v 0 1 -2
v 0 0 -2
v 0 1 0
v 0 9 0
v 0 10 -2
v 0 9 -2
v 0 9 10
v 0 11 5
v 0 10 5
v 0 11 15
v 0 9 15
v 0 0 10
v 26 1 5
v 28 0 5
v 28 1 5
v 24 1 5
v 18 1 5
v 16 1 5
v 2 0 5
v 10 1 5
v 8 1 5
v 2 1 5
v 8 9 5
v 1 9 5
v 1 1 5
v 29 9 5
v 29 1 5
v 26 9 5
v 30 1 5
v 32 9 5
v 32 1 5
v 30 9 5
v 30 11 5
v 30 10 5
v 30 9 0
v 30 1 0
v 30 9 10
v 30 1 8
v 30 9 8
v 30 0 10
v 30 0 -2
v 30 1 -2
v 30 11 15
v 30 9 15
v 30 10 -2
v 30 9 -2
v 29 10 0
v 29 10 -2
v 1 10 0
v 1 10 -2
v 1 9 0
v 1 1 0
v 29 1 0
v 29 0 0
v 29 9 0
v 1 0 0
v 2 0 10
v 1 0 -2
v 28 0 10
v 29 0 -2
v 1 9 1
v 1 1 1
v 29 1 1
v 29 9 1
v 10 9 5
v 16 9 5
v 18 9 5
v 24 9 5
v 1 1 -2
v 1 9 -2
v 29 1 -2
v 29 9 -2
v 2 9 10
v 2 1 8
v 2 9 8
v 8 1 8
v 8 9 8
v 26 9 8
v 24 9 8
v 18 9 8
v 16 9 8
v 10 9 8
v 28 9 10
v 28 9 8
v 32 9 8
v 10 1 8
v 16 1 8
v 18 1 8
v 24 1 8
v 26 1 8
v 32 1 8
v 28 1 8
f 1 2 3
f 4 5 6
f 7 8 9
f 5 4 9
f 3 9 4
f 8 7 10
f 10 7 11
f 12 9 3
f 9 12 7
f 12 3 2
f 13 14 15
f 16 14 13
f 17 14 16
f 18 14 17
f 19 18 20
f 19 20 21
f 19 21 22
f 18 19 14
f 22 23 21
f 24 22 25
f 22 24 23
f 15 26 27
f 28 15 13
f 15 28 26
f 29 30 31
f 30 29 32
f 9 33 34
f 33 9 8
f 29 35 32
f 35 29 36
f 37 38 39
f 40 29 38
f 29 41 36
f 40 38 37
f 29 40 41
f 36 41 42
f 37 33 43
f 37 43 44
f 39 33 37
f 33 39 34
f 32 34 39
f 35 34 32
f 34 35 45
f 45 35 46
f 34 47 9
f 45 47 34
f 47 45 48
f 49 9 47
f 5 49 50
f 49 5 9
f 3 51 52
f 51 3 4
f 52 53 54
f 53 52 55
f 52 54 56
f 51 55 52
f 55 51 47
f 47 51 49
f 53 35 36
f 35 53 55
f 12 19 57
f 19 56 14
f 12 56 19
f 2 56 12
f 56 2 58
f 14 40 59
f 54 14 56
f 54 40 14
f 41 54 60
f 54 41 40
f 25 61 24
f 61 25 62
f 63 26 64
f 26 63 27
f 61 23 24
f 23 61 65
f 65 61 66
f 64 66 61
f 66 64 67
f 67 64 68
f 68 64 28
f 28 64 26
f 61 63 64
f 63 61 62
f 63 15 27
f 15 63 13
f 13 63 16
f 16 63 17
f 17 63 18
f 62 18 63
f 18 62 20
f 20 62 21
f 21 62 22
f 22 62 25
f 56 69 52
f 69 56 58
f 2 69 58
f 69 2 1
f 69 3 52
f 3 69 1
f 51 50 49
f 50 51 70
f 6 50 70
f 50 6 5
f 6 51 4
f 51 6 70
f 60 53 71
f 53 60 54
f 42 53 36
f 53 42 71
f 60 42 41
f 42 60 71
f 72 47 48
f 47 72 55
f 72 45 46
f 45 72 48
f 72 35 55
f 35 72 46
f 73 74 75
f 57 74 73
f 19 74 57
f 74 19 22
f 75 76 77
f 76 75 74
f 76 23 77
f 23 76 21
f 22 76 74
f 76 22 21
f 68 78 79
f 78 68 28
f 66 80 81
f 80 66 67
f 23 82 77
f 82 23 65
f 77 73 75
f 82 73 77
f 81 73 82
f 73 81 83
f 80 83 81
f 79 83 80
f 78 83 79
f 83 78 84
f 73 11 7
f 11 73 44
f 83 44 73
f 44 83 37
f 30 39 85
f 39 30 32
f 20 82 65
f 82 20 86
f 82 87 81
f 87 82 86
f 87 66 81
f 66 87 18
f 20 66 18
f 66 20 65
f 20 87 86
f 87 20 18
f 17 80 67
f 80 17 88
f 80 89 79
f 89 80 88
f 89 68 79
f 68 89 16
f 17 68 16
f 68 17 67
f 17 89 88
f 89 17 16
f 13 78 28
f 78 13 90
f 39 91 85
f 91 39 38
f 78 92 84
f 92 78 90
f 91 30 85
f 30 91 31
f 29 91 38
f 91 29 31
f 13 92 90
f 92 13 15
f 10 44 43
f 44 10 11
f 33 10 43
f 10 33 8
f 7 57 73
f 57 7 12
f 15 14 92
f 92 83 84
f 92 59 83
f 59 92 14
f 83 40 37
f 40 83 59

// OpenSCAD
// Main body of the couch
difference() {
    cube([30, 10, 5]); // Base of the couch
    translate([1, 1, 1])
    cube([28, 8, 4]); // Hollow out the seating area
}

// Couch legs
for (i = [0,29]) {
    for (j = [0, 9]) {
        if (i == 0 || i == 29 || j == 0 || j == 9) {
            translate([i, j, -2])
            cube([1, 1, 2]); // Legs of the couch
        }
    }
}

// Backrest
translate([0, 9, 5])
cube([30, 2, 10]); // Backrest

// Armrests
translate([0, 0, 5])
cube([2, 10, 5]); // Left armrest

translate([28, 0, 5])
cube([2, 10, 5]); // Right armrest

// Cushions (Symmetrical placement)
for(k = [2, 10, 18, 26]) {
    translate([k, 1, 5])
    cube([6, 8, 3]); // Cushions on the seat
}
